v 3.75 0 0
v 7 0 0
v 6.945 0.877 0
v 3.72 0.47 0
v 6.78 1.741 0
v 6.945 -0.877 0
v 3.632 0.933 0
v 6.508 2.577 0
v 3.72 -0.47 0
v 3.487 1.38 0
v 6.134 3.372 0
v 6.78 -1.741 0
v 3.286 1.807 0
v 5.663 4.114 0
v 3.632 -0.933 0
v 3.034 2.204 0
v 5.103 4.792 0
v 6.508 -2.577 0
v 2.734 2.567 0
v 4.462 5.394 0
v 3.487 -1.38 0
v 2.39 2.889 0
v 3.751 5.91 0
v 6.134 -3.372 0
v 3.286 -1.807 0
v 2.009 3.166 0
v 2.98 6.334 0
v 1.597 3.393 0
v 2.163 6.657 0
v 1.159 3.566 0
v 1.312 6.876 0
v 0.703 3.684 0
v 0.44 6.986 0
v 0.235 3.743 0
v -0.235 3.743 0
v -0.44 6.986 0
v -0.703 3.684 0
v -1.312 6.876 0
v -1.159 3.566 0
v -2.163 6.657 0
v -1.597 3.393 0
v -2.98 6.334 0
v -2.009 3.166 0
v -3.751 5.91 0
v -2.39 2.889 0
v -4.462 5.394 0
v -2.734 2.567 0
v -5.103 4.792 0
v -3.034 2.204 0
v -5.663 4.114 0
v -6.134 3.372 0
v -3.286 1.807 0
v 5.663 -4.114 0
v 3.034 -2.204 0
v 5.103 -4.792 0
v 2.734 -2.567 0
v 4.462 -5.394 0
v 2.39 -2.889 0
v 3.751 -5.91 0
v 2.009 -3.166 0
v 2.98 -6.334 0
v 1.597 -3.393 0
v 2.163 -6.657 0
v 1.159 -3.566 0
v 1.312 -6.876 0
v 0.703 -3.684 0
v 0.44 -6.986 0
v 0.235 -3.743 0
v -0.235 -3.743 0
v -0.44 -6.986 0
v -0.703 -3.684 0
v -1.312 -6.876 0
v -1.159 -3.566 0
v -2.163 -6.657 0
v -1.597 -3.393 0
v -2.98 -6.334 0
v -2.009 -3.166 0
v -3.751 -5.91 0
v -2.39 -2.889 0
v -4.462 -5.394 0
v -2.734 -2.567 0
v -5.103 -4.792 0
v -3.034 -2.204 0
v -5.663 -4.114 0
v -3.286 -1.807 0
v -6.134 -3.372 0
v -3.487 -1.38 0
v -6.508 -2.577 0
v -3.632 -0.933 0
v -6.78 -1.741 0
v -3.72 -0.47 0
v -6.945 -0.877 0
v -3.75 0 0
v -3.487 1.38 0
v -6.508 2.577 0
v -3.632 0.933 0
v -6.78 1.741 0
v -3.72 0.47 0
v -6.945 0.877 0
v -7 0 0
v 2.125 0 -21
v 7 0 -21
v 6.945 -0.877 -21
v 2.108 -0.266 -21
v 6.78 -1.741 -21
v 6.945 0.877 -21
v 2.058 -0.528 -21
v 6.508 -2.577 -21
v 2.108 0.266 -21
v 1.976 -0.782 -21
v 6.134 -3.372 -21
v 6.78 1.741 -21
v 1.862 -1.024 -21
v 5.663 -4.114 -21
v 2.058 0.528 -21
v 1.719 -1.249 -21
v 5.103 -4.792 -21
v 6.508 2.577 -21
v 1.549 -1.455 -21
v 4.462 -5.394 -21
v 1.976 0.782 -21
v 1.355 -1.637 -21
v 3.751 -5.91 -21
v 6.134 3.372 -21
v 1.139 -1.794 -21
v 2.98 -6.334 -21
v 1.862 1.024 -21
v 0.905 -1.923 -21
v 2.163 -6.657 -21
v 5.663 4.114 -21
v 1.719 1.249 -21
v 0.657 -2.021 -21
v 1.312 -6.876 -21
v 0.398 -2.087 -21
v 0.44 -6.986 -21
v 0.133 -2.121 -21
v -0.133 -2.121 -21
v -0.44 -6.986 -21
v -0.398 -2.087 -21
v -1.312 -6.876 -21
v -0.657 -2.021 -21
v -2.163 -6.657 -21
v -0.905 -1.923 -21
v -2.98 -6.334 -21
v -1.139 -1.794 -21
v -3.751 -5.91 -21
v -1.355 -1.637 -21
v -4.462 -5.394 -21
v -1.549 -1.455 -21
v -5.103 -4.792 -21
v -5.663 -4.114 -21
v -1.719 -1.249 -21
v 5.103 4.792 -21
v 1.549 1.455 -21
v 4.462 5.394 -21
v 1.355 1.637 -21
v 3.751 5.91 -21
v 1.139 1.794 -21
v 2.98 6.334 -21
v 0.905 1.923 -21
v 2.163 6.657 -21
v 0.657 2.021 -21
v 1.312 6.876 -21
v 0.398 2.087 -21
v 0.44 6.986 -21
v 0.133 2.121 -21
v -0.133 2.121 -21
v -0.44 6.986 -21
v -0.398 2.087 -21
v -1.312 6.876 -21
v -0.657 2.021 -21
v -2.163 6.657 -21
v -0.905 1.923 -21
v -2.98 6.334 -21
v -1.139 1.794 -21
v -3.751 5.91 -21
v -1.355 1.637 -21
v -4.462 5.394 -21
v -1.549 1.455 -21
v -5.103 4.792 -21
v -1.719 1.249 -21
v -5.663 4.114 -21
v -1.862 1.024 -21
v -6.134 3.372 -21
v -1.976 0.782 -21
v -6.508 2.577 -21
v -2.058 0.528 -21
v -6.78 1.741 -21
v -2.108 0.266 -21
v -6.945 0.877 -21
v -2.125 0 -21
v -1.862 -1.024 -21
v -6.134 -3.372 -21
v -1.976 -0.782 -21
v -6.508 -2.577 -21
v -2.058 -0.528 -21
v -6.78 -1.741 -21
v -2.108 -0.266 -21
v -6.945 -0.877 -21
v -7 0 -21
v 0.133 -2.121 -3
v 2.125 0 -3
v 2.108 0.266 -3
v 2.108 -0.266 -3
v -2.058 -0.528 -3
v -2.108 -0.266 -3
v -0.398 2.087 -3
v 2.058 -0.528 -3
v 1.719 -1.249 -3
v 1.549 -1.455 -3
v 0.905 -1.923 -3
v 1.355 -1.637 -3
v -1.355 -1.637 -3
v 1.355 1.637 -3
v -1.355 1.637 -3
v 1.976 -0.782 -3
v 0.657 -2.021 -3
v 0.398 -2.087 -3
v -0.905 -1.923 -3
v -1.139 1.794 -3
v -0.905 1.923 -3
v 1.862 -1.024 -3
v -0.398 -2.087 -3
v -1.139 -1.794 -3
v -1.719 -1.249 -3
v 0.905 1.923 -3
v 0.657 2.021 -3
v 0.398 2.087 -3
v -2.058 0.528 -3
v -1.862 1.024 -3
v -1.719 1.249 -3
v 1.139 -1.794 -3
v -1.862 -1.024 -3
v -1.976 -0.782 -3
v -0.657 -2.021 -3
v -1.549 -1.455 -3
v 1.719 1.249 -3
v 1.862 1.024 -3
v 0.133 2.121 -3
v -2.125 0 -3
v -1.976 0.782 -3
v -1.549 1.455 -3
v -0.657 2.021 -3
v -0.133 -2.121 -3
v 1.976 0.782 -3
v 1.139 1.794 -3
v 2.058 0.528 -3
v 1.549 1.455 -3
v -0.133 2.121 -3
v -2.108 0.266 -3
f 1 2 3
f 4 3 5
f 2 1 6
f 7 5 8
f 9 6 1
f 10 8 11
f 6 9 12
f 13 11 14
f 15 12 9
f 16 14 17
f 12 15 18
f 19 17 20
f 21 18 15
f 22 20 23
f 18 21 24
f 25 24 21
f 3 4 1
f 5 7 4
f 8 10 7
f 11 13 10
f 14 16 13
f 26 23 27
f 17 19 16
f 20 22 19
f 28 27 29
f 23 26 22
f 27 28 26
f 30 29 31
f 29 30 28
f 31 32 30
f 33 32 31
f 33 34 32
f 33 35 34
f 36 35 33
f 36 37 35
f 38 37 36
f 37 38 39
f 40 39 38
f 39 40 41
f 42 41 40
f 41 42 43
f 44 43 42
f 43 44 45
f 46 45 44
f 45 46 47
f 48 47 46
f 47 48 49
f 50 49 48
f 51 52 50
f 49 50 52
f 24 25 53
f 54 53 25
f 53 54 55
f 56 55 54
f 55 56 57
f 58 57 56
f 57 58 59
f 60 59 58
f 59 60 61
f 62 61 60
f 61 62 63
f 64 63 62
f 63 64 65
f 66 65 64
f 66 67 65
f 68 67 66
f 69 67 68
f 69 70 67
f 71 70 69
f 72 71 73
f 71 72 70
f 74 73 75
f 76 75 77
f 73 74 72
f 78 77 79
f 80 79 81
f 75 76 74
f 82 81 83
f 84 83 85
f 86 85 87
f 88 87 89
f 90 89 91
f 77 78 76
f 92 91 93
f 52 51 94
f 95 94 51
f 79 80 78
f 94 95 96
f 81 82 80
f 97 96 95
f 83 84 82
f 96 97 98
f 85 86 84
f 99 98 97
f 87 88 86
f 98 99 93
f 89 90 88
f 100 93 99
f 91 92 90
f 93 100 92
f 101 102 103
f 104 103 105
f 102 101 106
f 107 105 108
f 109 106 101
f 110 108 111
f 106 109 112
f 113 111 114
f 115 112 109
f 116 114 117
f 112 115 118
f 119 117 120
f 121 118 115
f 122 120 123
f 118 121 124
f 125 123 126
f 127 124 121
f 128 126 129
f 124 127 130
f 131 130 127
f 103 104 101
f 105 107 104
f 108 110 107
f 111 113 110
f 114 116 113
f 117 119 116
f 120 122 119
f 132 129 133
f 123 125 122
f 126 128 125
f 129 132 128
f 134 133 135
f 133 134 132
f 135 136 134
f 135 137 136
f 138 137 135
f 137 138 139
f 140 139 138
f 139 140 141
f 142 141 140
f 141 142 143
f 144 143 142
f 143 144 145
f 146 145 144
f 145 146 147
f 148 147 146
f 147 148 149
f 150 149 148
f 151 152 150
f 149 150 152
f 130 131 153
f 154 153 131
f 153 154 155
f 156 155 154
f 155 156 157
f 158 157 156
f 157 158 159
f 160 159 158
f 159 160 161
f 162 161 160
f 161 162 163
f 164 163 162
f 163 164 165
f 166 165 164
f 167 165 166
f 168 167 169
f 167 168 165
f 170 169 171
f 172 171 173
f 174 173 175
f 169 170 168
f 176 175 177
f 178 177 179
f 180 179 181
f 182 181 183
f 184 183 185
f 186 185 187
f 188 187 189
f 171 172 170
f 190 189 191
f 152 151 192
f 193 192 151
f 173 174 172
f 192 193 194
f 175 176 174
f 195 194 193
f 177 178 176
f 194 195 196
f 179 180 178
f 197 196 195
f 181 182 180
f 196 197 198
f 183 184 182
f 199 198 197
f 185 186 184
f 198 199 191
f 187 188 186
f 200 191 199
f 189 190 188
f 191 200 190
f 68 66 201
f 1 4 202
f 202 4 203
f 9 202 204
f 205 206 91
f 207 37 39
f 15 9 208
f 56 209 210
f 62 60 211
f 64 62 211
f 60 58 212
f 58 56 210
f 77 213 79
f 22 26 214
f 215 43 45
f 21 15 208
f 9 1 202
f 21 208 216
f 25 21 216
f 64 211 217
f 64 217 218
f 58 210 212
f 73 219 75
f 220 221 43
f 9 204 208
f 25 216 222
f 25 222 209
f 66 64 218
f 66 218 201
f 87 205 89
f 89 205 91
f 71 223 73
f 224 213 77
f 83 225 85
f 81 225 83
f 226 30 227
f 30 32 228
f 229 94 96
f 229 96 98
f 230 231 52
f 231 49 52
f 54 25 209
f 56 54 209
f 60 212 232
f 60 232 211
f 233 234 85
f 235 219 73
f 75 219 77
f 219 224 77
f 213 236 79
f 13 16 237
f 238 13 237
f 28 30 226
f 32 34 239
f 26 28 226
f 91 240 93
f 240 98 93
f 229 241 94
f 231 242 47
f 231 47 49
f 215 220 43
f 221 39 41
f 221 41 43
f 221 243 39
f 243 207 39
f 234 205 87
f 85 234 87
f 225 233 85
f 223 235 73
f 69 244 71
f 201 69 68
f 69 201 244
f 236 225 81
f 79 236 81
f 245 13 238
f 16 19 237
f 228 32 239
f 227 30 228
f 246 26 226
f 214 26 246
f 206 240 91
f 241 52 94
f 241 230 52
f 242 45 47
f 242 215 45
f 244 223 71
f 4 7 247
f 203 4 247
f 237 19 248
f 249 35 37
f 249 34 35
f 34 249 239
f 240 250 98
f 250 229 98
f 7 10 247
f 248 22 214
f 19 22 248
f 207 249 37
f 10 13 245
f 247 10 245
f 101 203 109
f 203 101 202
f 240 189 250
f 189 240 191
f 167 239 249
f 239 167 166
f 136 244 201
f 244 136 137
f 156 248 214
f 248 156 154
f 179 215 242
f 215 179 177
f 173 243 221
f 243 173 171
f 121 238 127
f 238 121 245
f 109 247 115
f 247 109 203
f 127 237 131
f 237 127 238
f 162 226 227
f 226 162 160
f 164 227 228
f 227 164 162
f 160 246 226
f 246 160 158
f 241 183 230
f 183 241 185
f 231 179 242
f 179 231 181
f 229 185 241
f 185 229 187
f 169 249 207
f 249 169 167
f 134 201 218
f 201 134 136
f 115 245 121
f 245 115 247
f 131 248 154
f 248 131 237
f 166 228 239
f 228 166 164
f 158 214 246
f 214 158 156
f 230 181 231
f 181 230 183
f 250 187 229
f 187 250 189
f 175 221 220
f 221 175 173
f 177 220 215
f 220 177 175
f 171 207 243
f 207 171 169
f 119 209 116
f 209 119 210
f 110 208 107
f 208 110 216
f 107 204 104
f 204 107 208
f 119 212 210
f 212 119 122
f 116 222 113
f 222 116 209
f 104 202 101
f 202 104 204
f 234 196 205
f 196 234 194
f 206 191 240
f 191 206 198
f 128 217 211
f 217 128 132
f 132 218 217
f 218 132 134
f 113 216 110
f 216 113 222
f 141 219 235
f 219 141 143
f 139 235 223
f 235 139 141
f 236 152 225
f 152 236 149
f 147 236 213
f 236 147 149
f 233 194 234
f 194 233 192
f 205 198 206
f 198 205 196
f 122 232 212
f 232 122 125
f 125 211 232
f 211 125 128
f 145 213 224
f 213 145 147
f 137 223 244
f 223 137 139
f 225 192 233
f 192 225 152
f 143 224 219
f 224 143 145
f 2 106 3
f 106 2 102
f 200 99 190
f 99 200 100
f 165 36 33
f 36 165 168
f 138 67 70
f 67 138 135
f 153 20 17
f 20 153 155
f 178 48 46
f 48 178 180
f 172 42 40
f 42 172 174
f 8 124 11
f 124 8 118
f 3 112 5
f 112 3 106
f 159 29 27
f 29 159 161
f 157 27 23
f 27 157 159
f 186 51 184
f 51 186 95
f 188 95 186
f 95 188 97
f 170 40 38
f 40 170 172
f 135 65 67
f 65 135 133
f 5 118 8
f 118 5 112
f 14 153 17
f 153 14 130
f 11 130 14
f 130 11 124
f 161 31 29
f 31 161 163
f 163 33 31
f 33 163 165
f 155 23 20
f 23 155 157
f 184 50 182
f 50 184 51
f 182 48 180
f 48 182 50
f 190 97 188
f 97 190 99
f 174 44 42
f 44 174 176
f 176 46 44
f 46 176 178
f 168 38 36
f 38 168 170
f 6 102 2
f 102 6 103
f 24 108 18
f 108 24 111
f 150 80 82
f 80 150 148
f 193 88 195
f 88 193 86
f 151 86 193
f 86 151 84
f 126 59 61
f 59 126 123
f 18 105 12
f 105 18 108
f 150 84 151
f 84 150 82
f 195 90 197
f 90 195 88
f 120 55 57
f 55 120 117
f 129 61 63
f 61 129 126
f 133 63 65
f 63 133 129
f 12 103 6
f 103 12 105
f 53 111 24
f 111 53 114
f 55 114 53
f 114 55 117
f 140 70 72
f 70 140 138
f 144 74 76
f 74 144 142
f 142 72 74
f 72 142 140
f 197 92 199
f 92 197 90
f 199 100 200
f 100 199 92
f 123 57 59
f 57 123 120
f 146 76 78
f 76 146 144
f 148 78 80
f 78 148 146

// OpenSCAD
$fn = 50;


difference() {
	union() {
		translate(v = [0, 0, -21.0000000000]) {
			cylinder(h = 21, r = 7.0000000000);
		}
	}
	union() {
		translate(v = [0, 0, 0]) {
			rotate(a = [0, 0, 0]) {
				difference() {
					union() {
						#translate(v = [0, 0, -21.0000000000]) {
							cylinder(h = 21, r = 2.0000000000);
						}
						#translate(v = [0, 0, -3]) {
							cylinder(h = 3, r1 = 2.1250000000, r2 = 3.7500000000);
						}
						#translate(v = [0, 0, -21.0000000000]) {
							cylinder(h = 21, r = 2.1250000000);
						}
						#translate(v = [0, 0, -21.0000000000]) {
							cylinder(h = 21, r = 2.0000000000);
						}
					}
					union();
				}
			}
		}
	}
}
